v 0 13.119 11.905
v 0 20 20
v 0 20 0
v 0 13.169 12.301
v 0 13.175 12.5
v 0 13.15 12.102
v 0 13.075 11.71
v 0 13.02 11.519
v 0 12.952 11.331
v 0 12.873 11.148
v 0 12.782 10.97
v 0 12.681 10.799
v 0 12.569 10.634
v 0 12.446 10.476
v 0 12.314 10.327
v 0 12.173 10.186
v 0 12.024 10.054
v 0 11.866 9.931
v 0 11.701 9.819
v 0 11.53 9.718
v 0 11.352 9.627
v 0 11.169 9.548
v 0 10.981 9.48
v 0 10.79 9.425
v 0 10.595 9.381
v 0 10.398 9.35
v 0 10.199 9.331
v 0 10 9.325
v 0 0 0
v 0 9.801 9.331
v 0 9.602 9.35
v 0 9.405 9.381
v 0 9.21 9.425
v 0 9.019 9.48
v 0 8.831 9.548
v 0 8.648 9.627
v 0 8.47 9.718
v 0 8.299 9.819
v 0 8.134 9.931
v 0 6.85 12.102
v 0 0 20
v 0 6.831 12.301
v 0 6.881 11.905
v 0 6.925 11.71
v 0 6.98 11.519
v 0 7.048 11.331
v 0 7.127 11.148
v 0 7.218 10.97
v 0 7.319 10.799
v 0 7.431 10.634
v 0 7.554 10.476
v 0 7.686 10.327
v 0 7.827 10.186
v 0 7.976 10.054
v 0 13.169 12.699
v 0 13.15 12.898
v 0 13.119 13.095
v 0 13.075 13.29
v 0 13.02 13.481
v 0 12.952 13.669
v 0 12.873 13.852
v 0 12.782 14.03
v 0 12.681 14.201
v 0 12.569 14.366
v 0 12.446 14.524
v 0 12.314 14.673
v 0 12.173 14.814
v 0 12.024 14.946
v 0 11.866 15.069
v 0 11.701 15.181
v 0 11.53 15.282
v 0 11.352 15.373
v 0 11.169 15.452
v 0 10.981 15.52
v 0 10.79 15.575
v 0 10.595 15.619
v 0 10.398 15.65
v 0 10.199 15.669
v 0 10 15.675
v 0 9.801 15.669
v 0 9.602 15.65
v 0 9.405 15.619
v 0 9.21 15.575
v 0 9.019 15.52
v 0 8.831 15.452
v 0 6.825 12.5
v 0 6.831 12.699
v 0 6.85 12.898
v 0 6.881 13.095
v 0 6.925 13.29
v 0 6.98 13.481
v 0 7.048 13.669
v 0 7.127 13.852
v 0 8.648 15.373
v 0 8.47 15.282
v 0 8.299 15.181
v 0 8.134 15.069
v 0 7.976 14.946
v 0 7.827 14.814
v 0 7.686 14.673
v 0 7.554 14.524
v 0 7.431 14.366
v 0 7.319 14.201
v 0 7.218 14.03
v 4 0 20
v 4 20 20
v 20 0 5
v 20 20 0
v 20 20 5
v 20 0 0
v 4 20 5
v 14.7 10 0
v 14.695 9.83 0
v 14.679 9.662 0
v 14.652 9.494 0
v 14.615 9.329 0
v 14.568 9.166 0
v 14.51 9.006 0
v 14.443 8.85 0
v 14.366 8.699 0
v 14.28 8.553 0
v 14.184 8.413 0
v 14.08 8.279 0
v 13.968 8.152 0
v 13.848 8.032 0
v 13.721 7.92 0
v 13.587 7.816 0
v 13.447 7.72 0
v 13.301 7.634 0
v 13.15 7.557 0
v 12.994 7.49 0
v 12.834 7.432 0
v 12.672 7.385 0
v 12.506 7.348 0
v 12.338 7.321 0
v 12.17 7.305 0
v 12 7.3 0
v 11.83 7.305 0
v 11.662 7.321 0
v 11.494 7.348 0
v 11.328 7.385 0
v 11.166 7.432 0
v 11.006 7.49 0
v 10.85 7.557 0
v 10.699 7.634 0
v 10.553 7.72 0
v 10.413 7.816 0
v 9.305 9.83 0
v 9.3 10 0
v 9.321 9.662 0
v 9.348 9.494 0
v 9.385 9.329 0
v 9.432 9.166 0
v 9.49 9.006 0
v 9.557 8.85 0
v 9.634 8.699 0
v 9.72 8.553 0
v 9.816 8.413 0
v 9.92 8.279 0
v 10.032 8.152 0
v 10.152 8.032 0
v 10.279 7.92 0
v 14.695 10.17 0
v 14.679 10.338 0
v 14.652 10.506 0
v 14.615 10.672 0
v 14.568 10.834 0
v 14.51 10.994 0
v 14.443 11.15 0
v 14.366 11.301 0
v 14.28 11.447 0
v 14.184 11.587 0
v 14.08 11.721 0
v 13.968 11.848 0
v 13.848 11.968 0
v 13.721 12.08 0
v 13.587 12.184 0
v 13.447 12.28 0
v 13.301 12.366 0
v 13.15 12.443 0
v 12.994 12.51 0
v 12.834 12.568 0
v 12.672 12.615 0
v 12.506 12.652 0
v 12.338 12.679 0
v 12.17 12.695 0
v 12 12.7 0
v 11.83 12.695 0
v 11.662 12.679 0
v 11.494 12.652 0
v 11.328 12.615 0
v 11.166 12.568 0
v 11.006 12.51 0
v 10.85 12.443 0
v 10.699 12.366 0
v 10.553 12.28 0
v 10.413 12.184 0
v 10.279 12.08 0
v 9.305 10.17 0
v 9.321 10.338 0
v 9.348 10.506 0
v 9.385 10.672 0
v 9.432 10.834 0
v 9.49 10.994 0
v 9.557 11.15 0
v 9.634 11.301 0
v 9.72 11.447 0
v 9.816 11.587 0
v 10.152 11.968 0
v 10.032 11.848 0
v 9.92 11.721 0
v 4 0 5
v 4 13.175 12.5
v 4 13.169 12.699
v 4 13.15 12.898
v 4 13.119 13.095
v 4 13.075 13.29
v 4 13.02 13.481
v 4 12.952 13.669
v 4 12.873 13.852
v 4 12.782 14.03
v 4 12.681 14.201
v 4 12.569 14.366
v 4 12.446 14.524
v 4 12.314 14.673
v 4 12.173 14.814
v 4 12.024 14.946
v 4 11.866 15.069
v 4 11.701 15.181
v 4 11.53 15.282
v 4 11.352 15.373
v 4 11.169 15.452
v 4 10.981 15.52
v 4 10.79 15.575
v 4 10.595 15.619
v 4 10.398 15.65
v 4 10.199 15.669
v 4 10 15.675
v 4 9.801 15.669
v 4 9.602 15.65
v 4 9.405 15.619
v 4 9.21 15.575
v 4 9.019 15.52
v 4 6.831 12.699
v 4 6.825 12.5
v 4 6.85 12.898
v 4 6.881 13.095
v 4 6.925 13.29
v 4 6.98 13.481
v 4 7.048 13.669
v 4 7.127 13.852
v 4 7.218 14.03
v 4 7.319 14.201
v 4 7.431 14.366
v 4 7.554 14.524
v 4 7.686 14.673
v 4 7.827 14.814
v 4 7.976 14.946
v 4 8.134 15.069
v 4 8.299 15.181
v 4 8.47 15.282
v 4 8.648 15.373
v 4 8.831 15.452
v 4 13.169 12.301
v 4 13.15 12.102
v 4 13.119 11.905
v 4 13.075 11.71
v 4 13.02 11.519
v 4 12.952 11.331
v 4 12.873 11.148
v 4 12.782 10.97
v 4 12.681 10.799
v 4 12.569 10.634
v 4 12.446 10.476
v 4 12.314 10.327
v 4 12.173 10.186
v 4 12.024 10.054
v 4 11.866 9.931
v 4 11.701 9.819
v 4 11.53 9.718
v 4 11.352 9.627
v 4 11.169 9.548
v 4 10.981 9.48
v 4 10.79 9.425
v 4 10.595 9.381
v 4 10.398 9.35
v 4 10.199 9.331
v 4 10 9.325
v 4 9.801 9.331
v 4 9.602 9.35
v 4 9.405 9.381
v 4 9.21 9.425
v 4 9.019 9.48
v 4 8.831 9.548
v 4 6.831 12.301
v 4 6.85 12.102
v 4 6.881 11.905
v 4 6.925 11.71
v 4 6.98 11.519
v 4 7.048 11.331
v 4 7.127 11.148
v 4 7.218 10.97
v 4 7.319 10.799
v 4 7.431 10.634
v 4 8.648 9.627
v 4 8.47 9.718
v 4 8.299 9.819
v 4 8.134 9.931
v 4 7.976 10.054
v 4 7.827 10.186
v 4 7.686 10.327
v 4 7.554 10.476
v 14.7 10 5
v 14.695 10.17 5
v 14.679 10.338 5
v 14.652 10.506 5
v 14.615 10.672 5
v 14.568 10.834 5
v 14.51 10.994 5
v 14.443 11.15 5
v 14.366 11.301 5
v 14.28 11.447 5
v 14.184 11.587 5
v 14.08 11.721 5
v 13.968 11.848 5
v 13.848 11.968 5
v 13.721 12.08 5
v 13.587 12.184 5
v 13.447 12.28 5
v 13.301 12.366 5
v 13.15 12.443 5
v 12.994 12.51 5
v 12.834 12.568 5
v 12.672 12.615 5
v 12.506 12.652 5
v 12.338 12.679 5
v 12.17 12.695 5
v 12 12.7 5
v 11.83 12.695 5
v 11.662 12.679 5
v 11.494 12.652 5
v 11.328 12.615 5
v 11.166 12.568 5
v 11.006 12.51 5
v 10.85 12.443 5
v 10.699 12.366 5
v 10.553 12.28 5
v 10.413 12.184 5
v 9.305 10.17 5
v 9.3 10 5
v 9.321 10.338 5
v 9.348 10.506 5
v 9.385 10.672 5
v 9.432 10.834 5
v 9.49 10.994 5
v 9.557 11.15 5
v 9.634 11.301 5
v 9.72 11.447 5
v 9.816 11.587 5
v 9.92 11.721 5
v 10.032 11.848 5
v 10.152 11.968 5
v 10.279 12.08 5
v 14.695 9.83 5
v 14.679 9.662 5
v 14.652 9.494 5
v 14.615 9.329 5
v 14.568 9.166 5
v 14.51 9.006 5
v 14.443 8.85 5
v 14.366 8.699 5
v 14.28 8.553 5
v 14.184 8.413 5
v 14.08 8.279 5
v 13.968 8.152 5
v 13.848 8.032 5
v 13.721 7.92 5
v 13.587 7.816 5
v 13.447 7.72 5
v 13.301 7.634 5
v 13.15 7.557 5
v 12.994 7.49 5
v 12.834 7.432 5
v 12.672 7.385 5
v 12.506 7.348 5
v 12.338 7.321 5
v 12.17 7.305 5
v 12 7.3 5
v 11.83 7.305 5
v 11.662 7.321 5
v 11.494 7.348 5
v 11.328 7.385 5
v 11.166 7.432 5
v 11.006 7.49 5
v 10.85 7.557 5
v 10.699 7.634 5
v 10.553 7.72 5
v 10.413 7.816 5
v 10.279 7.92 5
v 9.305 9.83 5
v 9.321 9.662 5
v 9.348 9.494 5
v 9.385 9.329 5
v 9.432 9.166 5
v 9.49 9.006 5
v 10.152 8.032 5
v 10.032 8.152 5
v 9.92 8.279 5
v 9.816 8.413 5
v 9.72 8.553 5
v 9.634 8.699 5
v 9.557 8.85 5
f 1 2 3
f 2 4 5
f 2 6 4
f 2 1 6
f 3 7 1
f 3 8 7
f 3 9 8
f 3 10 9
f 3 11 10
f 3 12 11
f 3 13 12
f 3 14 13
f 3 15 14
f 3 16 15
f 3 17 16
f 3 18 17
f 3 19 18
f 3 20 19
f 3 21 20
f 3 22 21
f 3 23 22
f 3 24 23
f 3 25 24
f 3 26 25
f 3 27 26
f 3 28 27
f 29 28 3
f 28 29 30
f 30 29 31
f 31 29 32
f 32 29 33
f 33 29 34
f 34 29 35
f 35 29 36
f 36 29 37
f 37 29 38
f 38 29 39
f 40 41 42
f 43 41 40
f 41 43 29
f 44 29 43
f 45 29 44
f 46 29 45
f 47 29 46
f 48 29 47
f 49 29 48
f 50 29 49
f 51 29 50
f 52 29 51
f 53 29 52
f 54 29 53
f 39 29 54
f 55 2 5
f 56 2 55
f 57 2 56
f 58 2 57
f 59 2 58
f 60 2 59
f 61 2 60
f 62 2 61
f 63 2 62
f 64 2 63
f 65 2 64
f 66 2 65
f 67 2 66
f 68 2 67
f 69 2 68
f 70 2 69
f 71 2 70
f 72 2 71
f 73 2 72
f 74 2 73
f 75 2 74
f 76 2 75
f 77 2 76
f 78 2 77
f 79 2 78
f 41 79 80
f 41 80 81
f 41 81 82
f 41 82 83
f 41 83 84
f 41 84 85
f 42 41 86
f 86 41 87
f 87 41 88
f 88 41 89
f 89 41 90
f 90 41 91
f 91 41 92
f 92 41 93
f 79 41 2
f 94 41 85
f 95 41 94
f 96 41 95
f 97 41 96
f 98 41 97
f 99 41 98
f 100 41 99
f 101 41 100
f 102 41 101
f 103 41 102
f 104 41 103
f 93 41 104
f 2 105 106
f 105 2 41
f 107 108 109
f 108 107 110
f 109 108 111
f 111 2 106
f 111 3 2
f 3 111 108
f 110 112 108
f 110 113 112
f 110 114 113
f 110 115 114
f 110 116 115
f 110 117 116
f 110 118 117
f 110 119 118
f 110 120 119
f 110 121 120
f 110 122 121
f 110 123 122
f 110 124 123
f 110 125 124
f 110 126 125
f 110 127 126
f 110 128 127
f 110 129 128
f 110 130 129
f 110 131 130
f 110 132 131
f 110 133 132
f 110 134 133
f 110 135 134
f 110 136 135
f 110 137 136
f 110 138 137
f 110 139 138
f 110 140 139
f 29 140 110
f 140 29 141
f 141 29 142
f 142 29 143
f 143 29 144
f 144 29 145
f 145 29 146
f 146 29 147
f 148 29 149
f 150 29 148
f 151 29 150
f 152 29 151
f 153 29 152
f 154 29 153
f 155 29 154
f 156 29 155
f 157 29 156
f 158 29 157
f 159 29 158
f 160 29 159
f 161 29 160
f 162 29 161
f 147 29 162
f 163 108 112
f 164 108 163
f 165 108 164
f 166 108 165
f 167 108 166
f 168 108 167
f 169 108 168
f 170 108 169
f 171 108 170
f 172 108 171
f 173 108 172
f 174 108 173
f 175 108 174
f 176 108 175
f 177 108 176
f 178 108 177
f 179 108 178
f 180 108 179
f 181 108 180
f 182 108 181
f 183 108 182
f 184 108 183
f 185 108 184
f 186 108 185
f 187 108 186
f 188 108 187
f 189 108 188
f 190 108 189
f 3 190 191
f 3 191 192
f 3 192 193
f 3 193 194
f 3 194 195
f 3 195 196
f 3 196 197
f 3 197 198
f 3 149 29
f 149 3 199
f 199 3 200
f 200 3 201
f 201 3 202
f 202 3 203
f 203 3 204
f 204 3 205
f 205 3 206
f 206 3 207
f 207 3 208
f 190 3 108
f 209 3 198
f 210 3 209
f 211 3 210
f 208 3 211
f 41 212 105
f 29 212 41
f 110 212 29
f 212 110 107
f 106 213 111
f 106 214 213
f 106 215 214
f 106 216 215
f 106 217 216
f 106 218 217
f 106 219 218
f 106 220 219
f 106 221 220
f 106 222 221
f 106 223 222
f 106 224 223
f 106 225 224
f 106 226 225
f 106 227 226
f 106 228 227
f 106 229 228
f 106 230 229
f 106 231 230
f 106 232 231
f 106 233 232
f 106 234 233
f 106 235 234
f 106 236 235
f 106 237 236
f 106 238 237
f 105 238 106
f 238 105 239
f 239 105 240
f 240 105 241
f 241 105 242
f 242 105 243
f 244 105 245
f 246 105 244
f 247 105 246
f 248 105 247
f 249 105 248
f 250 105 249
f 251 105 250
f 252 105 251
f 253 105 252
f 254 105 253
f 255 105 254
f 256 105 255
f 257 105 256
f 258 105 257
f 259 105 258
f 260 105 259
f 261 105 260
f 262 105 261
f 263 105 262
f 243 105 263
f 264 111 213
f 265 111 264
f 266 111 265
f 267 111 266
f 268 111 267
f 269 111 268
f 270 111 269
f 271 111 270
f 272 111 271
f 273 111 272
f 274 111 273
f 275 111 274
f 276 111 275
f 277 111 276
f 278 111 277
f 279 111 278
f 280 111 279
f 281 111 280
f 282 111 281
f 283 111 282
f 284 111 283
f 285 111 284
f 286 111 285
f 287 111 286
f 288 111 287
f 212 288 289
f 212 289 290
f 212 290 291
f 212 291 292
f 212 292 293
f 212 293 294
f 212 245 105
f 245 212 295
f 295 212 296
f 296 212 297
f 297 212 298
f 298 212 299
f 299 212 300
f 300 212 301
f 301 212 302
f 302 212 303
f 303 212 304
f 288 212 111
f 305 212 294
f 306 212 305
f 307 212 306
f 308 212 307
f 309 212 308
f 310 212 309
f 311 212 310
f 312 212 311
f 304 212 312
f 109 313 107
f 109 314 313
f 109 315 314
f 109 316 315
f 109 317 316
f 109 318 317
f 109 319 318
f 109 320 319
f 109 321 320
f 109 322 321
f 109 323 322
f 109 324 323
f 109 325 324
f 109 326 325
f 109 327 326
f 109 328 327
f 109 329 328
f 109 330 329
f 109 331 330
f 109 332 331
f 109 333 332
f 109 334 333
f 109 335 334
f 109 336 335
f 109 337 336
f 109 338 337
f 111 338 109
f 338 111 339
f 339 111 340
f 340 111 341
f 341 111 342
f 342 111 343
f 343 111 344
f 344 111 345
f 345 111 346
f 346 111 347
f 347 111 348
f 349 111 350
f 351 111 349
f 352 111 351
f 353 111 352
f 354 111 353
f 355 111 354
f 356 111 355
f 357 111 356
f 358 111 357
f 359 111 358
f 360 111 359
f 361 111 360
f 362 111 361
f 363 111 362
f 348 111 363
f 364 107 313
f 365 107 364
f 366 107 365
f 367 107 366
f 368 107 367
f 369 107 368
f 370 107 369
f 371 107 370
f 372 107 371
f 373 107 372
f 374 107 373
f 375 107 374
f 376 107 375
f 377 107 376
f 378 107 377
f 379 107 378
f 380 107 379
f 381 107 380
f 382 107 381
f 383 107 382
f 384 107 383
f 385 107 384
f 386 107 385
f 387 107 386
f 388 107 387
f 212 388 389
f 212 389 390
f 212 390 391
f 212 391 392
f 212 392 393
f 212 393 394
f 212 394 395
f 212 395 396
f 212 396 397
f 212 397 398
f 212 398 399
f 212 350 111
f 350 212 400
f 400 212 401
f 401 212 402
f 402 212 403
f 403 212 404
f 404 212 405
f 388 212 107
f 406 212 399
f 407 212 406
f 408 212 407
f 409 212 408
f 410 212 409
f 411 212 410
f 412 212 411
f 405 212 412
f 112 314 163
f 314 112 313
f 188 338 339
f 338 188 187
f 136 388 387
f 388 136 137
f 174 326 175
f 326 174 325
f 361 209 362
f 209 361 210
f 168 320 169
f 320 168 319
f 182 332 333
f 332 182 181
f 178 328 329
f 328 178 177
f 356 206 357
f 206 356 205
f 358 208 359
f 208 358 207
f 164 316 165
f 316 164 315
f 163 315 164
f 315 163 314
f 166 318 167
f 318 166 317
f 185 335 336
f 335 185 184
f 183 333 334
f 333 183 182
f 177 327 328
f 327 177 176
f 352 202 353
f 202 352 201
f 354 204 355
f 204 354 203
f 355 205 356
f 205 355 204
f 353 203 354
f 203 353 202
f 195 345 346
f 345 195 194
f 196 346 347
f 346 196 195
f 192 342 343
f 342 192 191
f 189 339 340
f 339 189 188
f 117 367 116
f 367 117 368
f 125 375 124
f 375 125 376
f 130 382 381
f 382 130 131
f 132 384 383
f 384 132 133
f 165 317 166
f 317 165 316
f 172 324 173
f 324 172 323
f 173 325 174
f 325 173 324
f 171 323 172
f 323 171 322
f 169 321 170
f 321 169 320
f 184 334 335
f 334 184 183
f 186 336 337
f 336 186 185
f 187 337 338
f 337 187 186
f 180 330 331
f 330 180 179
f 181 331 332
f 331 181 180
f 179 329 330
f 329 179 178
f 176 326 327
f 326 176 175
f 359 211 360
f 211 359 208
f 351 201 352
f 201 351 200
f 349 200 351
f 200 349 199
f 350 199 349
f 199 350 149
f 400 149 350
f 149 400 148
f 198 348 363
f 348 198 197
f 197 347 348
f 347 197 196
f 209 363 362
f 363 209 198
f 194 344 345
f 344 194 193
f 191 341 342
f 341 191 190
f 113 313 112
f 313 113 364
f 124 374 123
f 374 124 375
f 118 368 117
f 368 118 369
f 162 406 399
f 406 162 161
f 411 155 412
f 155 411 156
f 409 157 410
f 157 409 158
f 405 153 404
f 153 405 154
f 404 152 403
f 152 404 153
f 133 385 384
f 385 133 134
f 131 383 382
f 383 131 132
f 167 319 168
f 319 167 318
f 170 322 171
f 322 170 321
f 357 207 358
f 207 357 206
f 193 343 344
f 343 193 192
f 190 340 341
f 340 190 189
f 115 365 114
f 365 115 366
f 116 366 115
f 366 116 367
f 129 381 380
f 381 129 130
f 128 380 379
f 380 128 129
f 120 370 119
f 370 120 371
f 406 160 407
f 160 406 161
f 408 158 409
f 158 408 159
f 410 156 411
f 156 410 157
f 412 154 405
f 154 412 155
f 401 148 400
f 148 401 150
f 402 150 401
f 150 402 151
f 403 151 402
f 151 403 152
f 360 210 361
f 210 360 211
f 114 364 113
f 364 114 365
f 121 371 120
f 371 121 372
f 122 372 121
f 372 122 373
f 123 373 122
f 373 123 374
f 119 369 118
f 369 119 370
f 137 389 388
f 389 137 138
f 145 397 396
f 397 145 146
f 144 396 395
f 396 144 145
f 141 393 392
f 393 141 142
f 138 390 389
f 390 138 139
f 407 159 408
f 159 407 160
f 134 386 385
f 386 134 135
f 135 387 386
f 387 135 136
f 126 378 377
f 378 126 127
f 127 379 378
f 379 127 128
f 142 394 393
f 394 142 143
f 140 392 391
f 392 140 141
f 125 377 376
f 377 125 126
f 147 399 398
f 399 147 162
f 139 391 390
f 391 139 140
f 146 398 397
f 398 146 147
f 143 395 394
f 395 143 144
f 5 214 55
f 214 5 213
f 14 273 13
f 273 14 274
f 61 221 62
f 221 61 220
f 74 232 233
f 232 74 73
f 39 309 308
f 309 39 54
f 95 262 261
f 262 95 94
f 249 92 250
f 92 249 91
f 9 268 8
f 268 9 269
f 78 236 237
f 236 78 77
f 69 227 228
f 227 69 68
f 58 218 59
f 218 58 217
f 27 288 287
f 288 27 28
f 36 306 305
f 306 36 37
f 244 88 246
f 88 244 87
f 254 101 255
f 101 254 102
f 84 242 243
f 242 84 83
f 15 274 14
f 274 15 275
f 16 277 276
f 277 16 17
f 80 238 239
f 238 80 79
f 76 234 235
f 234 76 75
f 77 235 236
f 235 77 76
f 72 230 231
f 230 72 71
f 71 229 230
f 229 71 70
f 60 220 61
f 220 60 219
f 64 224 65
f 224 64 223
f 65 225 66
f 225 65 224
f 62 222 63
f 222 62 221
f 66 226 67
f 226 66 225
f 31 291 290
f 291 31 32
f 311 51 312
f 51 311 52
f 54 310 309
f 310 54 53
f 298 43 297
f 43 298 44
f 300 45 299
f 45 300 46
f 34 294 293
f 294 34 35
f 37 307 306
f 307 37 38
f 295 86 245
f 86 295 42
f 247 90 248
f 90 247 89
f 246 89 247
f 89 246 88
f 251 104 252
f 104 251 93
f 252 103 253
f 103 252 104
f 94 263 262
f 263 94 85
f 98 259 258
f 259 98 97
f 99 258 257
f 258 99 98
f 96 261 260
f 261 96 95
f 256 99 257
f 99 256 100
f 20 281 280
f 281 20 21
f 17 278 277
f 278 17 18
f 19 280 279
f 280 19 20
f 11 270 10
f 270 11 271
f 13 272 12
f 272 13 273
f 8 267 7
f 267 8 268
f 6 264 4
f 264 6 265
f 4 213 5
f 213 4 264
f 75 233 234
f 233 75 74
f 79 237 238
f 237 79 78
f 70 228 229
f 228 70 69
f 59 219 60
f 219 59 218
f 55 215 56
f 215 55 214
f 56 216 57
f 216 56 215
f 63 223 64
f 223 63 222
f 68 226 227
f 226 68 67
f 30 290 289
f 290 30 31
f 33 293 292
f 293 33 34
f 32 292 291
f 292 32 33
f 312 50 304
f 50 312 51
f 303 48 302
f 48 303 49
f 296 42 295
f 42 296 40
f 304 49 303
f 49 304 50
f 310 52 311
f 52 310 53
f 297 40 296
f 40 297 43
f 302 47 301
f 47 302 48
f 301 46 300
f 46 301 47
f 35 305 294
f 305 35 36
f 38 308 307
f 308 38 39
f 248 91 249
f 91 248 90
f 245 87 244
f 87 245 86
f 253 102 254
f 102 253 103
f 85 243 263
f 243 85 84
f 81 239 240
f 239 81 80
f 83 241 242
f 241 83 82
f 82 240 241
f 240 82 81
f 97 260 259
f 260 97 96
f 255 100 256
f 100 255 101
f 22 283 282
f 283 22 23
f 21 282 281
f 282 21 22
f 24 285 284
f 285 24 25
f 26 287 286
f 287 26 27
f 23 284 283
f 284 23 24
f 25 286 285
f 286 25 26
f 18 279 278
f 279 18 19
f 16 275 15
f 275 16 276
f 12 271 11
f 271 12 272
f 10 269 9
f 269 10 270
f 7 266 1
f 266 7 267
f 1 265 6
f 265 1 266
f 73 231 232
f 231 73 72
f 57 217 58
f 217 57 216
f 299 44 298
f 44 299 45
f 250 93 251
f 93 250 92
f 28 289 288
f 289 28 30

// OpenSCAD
$fn = 100;

module SMATripodMount(){
  difference(){
    cube([20, 20, 20]);
    
    translate([4, 0, 5]) cube([20, 20, 20]);
    
    translate([12, 10, -1]) cylinder(d = 5.4, h = 10);
    translate([-1, 10, 12.5]) rotate([0, 90, 0]) cylinder(d = 6.35, h = 10);
  }
}

SMATripodMount();
